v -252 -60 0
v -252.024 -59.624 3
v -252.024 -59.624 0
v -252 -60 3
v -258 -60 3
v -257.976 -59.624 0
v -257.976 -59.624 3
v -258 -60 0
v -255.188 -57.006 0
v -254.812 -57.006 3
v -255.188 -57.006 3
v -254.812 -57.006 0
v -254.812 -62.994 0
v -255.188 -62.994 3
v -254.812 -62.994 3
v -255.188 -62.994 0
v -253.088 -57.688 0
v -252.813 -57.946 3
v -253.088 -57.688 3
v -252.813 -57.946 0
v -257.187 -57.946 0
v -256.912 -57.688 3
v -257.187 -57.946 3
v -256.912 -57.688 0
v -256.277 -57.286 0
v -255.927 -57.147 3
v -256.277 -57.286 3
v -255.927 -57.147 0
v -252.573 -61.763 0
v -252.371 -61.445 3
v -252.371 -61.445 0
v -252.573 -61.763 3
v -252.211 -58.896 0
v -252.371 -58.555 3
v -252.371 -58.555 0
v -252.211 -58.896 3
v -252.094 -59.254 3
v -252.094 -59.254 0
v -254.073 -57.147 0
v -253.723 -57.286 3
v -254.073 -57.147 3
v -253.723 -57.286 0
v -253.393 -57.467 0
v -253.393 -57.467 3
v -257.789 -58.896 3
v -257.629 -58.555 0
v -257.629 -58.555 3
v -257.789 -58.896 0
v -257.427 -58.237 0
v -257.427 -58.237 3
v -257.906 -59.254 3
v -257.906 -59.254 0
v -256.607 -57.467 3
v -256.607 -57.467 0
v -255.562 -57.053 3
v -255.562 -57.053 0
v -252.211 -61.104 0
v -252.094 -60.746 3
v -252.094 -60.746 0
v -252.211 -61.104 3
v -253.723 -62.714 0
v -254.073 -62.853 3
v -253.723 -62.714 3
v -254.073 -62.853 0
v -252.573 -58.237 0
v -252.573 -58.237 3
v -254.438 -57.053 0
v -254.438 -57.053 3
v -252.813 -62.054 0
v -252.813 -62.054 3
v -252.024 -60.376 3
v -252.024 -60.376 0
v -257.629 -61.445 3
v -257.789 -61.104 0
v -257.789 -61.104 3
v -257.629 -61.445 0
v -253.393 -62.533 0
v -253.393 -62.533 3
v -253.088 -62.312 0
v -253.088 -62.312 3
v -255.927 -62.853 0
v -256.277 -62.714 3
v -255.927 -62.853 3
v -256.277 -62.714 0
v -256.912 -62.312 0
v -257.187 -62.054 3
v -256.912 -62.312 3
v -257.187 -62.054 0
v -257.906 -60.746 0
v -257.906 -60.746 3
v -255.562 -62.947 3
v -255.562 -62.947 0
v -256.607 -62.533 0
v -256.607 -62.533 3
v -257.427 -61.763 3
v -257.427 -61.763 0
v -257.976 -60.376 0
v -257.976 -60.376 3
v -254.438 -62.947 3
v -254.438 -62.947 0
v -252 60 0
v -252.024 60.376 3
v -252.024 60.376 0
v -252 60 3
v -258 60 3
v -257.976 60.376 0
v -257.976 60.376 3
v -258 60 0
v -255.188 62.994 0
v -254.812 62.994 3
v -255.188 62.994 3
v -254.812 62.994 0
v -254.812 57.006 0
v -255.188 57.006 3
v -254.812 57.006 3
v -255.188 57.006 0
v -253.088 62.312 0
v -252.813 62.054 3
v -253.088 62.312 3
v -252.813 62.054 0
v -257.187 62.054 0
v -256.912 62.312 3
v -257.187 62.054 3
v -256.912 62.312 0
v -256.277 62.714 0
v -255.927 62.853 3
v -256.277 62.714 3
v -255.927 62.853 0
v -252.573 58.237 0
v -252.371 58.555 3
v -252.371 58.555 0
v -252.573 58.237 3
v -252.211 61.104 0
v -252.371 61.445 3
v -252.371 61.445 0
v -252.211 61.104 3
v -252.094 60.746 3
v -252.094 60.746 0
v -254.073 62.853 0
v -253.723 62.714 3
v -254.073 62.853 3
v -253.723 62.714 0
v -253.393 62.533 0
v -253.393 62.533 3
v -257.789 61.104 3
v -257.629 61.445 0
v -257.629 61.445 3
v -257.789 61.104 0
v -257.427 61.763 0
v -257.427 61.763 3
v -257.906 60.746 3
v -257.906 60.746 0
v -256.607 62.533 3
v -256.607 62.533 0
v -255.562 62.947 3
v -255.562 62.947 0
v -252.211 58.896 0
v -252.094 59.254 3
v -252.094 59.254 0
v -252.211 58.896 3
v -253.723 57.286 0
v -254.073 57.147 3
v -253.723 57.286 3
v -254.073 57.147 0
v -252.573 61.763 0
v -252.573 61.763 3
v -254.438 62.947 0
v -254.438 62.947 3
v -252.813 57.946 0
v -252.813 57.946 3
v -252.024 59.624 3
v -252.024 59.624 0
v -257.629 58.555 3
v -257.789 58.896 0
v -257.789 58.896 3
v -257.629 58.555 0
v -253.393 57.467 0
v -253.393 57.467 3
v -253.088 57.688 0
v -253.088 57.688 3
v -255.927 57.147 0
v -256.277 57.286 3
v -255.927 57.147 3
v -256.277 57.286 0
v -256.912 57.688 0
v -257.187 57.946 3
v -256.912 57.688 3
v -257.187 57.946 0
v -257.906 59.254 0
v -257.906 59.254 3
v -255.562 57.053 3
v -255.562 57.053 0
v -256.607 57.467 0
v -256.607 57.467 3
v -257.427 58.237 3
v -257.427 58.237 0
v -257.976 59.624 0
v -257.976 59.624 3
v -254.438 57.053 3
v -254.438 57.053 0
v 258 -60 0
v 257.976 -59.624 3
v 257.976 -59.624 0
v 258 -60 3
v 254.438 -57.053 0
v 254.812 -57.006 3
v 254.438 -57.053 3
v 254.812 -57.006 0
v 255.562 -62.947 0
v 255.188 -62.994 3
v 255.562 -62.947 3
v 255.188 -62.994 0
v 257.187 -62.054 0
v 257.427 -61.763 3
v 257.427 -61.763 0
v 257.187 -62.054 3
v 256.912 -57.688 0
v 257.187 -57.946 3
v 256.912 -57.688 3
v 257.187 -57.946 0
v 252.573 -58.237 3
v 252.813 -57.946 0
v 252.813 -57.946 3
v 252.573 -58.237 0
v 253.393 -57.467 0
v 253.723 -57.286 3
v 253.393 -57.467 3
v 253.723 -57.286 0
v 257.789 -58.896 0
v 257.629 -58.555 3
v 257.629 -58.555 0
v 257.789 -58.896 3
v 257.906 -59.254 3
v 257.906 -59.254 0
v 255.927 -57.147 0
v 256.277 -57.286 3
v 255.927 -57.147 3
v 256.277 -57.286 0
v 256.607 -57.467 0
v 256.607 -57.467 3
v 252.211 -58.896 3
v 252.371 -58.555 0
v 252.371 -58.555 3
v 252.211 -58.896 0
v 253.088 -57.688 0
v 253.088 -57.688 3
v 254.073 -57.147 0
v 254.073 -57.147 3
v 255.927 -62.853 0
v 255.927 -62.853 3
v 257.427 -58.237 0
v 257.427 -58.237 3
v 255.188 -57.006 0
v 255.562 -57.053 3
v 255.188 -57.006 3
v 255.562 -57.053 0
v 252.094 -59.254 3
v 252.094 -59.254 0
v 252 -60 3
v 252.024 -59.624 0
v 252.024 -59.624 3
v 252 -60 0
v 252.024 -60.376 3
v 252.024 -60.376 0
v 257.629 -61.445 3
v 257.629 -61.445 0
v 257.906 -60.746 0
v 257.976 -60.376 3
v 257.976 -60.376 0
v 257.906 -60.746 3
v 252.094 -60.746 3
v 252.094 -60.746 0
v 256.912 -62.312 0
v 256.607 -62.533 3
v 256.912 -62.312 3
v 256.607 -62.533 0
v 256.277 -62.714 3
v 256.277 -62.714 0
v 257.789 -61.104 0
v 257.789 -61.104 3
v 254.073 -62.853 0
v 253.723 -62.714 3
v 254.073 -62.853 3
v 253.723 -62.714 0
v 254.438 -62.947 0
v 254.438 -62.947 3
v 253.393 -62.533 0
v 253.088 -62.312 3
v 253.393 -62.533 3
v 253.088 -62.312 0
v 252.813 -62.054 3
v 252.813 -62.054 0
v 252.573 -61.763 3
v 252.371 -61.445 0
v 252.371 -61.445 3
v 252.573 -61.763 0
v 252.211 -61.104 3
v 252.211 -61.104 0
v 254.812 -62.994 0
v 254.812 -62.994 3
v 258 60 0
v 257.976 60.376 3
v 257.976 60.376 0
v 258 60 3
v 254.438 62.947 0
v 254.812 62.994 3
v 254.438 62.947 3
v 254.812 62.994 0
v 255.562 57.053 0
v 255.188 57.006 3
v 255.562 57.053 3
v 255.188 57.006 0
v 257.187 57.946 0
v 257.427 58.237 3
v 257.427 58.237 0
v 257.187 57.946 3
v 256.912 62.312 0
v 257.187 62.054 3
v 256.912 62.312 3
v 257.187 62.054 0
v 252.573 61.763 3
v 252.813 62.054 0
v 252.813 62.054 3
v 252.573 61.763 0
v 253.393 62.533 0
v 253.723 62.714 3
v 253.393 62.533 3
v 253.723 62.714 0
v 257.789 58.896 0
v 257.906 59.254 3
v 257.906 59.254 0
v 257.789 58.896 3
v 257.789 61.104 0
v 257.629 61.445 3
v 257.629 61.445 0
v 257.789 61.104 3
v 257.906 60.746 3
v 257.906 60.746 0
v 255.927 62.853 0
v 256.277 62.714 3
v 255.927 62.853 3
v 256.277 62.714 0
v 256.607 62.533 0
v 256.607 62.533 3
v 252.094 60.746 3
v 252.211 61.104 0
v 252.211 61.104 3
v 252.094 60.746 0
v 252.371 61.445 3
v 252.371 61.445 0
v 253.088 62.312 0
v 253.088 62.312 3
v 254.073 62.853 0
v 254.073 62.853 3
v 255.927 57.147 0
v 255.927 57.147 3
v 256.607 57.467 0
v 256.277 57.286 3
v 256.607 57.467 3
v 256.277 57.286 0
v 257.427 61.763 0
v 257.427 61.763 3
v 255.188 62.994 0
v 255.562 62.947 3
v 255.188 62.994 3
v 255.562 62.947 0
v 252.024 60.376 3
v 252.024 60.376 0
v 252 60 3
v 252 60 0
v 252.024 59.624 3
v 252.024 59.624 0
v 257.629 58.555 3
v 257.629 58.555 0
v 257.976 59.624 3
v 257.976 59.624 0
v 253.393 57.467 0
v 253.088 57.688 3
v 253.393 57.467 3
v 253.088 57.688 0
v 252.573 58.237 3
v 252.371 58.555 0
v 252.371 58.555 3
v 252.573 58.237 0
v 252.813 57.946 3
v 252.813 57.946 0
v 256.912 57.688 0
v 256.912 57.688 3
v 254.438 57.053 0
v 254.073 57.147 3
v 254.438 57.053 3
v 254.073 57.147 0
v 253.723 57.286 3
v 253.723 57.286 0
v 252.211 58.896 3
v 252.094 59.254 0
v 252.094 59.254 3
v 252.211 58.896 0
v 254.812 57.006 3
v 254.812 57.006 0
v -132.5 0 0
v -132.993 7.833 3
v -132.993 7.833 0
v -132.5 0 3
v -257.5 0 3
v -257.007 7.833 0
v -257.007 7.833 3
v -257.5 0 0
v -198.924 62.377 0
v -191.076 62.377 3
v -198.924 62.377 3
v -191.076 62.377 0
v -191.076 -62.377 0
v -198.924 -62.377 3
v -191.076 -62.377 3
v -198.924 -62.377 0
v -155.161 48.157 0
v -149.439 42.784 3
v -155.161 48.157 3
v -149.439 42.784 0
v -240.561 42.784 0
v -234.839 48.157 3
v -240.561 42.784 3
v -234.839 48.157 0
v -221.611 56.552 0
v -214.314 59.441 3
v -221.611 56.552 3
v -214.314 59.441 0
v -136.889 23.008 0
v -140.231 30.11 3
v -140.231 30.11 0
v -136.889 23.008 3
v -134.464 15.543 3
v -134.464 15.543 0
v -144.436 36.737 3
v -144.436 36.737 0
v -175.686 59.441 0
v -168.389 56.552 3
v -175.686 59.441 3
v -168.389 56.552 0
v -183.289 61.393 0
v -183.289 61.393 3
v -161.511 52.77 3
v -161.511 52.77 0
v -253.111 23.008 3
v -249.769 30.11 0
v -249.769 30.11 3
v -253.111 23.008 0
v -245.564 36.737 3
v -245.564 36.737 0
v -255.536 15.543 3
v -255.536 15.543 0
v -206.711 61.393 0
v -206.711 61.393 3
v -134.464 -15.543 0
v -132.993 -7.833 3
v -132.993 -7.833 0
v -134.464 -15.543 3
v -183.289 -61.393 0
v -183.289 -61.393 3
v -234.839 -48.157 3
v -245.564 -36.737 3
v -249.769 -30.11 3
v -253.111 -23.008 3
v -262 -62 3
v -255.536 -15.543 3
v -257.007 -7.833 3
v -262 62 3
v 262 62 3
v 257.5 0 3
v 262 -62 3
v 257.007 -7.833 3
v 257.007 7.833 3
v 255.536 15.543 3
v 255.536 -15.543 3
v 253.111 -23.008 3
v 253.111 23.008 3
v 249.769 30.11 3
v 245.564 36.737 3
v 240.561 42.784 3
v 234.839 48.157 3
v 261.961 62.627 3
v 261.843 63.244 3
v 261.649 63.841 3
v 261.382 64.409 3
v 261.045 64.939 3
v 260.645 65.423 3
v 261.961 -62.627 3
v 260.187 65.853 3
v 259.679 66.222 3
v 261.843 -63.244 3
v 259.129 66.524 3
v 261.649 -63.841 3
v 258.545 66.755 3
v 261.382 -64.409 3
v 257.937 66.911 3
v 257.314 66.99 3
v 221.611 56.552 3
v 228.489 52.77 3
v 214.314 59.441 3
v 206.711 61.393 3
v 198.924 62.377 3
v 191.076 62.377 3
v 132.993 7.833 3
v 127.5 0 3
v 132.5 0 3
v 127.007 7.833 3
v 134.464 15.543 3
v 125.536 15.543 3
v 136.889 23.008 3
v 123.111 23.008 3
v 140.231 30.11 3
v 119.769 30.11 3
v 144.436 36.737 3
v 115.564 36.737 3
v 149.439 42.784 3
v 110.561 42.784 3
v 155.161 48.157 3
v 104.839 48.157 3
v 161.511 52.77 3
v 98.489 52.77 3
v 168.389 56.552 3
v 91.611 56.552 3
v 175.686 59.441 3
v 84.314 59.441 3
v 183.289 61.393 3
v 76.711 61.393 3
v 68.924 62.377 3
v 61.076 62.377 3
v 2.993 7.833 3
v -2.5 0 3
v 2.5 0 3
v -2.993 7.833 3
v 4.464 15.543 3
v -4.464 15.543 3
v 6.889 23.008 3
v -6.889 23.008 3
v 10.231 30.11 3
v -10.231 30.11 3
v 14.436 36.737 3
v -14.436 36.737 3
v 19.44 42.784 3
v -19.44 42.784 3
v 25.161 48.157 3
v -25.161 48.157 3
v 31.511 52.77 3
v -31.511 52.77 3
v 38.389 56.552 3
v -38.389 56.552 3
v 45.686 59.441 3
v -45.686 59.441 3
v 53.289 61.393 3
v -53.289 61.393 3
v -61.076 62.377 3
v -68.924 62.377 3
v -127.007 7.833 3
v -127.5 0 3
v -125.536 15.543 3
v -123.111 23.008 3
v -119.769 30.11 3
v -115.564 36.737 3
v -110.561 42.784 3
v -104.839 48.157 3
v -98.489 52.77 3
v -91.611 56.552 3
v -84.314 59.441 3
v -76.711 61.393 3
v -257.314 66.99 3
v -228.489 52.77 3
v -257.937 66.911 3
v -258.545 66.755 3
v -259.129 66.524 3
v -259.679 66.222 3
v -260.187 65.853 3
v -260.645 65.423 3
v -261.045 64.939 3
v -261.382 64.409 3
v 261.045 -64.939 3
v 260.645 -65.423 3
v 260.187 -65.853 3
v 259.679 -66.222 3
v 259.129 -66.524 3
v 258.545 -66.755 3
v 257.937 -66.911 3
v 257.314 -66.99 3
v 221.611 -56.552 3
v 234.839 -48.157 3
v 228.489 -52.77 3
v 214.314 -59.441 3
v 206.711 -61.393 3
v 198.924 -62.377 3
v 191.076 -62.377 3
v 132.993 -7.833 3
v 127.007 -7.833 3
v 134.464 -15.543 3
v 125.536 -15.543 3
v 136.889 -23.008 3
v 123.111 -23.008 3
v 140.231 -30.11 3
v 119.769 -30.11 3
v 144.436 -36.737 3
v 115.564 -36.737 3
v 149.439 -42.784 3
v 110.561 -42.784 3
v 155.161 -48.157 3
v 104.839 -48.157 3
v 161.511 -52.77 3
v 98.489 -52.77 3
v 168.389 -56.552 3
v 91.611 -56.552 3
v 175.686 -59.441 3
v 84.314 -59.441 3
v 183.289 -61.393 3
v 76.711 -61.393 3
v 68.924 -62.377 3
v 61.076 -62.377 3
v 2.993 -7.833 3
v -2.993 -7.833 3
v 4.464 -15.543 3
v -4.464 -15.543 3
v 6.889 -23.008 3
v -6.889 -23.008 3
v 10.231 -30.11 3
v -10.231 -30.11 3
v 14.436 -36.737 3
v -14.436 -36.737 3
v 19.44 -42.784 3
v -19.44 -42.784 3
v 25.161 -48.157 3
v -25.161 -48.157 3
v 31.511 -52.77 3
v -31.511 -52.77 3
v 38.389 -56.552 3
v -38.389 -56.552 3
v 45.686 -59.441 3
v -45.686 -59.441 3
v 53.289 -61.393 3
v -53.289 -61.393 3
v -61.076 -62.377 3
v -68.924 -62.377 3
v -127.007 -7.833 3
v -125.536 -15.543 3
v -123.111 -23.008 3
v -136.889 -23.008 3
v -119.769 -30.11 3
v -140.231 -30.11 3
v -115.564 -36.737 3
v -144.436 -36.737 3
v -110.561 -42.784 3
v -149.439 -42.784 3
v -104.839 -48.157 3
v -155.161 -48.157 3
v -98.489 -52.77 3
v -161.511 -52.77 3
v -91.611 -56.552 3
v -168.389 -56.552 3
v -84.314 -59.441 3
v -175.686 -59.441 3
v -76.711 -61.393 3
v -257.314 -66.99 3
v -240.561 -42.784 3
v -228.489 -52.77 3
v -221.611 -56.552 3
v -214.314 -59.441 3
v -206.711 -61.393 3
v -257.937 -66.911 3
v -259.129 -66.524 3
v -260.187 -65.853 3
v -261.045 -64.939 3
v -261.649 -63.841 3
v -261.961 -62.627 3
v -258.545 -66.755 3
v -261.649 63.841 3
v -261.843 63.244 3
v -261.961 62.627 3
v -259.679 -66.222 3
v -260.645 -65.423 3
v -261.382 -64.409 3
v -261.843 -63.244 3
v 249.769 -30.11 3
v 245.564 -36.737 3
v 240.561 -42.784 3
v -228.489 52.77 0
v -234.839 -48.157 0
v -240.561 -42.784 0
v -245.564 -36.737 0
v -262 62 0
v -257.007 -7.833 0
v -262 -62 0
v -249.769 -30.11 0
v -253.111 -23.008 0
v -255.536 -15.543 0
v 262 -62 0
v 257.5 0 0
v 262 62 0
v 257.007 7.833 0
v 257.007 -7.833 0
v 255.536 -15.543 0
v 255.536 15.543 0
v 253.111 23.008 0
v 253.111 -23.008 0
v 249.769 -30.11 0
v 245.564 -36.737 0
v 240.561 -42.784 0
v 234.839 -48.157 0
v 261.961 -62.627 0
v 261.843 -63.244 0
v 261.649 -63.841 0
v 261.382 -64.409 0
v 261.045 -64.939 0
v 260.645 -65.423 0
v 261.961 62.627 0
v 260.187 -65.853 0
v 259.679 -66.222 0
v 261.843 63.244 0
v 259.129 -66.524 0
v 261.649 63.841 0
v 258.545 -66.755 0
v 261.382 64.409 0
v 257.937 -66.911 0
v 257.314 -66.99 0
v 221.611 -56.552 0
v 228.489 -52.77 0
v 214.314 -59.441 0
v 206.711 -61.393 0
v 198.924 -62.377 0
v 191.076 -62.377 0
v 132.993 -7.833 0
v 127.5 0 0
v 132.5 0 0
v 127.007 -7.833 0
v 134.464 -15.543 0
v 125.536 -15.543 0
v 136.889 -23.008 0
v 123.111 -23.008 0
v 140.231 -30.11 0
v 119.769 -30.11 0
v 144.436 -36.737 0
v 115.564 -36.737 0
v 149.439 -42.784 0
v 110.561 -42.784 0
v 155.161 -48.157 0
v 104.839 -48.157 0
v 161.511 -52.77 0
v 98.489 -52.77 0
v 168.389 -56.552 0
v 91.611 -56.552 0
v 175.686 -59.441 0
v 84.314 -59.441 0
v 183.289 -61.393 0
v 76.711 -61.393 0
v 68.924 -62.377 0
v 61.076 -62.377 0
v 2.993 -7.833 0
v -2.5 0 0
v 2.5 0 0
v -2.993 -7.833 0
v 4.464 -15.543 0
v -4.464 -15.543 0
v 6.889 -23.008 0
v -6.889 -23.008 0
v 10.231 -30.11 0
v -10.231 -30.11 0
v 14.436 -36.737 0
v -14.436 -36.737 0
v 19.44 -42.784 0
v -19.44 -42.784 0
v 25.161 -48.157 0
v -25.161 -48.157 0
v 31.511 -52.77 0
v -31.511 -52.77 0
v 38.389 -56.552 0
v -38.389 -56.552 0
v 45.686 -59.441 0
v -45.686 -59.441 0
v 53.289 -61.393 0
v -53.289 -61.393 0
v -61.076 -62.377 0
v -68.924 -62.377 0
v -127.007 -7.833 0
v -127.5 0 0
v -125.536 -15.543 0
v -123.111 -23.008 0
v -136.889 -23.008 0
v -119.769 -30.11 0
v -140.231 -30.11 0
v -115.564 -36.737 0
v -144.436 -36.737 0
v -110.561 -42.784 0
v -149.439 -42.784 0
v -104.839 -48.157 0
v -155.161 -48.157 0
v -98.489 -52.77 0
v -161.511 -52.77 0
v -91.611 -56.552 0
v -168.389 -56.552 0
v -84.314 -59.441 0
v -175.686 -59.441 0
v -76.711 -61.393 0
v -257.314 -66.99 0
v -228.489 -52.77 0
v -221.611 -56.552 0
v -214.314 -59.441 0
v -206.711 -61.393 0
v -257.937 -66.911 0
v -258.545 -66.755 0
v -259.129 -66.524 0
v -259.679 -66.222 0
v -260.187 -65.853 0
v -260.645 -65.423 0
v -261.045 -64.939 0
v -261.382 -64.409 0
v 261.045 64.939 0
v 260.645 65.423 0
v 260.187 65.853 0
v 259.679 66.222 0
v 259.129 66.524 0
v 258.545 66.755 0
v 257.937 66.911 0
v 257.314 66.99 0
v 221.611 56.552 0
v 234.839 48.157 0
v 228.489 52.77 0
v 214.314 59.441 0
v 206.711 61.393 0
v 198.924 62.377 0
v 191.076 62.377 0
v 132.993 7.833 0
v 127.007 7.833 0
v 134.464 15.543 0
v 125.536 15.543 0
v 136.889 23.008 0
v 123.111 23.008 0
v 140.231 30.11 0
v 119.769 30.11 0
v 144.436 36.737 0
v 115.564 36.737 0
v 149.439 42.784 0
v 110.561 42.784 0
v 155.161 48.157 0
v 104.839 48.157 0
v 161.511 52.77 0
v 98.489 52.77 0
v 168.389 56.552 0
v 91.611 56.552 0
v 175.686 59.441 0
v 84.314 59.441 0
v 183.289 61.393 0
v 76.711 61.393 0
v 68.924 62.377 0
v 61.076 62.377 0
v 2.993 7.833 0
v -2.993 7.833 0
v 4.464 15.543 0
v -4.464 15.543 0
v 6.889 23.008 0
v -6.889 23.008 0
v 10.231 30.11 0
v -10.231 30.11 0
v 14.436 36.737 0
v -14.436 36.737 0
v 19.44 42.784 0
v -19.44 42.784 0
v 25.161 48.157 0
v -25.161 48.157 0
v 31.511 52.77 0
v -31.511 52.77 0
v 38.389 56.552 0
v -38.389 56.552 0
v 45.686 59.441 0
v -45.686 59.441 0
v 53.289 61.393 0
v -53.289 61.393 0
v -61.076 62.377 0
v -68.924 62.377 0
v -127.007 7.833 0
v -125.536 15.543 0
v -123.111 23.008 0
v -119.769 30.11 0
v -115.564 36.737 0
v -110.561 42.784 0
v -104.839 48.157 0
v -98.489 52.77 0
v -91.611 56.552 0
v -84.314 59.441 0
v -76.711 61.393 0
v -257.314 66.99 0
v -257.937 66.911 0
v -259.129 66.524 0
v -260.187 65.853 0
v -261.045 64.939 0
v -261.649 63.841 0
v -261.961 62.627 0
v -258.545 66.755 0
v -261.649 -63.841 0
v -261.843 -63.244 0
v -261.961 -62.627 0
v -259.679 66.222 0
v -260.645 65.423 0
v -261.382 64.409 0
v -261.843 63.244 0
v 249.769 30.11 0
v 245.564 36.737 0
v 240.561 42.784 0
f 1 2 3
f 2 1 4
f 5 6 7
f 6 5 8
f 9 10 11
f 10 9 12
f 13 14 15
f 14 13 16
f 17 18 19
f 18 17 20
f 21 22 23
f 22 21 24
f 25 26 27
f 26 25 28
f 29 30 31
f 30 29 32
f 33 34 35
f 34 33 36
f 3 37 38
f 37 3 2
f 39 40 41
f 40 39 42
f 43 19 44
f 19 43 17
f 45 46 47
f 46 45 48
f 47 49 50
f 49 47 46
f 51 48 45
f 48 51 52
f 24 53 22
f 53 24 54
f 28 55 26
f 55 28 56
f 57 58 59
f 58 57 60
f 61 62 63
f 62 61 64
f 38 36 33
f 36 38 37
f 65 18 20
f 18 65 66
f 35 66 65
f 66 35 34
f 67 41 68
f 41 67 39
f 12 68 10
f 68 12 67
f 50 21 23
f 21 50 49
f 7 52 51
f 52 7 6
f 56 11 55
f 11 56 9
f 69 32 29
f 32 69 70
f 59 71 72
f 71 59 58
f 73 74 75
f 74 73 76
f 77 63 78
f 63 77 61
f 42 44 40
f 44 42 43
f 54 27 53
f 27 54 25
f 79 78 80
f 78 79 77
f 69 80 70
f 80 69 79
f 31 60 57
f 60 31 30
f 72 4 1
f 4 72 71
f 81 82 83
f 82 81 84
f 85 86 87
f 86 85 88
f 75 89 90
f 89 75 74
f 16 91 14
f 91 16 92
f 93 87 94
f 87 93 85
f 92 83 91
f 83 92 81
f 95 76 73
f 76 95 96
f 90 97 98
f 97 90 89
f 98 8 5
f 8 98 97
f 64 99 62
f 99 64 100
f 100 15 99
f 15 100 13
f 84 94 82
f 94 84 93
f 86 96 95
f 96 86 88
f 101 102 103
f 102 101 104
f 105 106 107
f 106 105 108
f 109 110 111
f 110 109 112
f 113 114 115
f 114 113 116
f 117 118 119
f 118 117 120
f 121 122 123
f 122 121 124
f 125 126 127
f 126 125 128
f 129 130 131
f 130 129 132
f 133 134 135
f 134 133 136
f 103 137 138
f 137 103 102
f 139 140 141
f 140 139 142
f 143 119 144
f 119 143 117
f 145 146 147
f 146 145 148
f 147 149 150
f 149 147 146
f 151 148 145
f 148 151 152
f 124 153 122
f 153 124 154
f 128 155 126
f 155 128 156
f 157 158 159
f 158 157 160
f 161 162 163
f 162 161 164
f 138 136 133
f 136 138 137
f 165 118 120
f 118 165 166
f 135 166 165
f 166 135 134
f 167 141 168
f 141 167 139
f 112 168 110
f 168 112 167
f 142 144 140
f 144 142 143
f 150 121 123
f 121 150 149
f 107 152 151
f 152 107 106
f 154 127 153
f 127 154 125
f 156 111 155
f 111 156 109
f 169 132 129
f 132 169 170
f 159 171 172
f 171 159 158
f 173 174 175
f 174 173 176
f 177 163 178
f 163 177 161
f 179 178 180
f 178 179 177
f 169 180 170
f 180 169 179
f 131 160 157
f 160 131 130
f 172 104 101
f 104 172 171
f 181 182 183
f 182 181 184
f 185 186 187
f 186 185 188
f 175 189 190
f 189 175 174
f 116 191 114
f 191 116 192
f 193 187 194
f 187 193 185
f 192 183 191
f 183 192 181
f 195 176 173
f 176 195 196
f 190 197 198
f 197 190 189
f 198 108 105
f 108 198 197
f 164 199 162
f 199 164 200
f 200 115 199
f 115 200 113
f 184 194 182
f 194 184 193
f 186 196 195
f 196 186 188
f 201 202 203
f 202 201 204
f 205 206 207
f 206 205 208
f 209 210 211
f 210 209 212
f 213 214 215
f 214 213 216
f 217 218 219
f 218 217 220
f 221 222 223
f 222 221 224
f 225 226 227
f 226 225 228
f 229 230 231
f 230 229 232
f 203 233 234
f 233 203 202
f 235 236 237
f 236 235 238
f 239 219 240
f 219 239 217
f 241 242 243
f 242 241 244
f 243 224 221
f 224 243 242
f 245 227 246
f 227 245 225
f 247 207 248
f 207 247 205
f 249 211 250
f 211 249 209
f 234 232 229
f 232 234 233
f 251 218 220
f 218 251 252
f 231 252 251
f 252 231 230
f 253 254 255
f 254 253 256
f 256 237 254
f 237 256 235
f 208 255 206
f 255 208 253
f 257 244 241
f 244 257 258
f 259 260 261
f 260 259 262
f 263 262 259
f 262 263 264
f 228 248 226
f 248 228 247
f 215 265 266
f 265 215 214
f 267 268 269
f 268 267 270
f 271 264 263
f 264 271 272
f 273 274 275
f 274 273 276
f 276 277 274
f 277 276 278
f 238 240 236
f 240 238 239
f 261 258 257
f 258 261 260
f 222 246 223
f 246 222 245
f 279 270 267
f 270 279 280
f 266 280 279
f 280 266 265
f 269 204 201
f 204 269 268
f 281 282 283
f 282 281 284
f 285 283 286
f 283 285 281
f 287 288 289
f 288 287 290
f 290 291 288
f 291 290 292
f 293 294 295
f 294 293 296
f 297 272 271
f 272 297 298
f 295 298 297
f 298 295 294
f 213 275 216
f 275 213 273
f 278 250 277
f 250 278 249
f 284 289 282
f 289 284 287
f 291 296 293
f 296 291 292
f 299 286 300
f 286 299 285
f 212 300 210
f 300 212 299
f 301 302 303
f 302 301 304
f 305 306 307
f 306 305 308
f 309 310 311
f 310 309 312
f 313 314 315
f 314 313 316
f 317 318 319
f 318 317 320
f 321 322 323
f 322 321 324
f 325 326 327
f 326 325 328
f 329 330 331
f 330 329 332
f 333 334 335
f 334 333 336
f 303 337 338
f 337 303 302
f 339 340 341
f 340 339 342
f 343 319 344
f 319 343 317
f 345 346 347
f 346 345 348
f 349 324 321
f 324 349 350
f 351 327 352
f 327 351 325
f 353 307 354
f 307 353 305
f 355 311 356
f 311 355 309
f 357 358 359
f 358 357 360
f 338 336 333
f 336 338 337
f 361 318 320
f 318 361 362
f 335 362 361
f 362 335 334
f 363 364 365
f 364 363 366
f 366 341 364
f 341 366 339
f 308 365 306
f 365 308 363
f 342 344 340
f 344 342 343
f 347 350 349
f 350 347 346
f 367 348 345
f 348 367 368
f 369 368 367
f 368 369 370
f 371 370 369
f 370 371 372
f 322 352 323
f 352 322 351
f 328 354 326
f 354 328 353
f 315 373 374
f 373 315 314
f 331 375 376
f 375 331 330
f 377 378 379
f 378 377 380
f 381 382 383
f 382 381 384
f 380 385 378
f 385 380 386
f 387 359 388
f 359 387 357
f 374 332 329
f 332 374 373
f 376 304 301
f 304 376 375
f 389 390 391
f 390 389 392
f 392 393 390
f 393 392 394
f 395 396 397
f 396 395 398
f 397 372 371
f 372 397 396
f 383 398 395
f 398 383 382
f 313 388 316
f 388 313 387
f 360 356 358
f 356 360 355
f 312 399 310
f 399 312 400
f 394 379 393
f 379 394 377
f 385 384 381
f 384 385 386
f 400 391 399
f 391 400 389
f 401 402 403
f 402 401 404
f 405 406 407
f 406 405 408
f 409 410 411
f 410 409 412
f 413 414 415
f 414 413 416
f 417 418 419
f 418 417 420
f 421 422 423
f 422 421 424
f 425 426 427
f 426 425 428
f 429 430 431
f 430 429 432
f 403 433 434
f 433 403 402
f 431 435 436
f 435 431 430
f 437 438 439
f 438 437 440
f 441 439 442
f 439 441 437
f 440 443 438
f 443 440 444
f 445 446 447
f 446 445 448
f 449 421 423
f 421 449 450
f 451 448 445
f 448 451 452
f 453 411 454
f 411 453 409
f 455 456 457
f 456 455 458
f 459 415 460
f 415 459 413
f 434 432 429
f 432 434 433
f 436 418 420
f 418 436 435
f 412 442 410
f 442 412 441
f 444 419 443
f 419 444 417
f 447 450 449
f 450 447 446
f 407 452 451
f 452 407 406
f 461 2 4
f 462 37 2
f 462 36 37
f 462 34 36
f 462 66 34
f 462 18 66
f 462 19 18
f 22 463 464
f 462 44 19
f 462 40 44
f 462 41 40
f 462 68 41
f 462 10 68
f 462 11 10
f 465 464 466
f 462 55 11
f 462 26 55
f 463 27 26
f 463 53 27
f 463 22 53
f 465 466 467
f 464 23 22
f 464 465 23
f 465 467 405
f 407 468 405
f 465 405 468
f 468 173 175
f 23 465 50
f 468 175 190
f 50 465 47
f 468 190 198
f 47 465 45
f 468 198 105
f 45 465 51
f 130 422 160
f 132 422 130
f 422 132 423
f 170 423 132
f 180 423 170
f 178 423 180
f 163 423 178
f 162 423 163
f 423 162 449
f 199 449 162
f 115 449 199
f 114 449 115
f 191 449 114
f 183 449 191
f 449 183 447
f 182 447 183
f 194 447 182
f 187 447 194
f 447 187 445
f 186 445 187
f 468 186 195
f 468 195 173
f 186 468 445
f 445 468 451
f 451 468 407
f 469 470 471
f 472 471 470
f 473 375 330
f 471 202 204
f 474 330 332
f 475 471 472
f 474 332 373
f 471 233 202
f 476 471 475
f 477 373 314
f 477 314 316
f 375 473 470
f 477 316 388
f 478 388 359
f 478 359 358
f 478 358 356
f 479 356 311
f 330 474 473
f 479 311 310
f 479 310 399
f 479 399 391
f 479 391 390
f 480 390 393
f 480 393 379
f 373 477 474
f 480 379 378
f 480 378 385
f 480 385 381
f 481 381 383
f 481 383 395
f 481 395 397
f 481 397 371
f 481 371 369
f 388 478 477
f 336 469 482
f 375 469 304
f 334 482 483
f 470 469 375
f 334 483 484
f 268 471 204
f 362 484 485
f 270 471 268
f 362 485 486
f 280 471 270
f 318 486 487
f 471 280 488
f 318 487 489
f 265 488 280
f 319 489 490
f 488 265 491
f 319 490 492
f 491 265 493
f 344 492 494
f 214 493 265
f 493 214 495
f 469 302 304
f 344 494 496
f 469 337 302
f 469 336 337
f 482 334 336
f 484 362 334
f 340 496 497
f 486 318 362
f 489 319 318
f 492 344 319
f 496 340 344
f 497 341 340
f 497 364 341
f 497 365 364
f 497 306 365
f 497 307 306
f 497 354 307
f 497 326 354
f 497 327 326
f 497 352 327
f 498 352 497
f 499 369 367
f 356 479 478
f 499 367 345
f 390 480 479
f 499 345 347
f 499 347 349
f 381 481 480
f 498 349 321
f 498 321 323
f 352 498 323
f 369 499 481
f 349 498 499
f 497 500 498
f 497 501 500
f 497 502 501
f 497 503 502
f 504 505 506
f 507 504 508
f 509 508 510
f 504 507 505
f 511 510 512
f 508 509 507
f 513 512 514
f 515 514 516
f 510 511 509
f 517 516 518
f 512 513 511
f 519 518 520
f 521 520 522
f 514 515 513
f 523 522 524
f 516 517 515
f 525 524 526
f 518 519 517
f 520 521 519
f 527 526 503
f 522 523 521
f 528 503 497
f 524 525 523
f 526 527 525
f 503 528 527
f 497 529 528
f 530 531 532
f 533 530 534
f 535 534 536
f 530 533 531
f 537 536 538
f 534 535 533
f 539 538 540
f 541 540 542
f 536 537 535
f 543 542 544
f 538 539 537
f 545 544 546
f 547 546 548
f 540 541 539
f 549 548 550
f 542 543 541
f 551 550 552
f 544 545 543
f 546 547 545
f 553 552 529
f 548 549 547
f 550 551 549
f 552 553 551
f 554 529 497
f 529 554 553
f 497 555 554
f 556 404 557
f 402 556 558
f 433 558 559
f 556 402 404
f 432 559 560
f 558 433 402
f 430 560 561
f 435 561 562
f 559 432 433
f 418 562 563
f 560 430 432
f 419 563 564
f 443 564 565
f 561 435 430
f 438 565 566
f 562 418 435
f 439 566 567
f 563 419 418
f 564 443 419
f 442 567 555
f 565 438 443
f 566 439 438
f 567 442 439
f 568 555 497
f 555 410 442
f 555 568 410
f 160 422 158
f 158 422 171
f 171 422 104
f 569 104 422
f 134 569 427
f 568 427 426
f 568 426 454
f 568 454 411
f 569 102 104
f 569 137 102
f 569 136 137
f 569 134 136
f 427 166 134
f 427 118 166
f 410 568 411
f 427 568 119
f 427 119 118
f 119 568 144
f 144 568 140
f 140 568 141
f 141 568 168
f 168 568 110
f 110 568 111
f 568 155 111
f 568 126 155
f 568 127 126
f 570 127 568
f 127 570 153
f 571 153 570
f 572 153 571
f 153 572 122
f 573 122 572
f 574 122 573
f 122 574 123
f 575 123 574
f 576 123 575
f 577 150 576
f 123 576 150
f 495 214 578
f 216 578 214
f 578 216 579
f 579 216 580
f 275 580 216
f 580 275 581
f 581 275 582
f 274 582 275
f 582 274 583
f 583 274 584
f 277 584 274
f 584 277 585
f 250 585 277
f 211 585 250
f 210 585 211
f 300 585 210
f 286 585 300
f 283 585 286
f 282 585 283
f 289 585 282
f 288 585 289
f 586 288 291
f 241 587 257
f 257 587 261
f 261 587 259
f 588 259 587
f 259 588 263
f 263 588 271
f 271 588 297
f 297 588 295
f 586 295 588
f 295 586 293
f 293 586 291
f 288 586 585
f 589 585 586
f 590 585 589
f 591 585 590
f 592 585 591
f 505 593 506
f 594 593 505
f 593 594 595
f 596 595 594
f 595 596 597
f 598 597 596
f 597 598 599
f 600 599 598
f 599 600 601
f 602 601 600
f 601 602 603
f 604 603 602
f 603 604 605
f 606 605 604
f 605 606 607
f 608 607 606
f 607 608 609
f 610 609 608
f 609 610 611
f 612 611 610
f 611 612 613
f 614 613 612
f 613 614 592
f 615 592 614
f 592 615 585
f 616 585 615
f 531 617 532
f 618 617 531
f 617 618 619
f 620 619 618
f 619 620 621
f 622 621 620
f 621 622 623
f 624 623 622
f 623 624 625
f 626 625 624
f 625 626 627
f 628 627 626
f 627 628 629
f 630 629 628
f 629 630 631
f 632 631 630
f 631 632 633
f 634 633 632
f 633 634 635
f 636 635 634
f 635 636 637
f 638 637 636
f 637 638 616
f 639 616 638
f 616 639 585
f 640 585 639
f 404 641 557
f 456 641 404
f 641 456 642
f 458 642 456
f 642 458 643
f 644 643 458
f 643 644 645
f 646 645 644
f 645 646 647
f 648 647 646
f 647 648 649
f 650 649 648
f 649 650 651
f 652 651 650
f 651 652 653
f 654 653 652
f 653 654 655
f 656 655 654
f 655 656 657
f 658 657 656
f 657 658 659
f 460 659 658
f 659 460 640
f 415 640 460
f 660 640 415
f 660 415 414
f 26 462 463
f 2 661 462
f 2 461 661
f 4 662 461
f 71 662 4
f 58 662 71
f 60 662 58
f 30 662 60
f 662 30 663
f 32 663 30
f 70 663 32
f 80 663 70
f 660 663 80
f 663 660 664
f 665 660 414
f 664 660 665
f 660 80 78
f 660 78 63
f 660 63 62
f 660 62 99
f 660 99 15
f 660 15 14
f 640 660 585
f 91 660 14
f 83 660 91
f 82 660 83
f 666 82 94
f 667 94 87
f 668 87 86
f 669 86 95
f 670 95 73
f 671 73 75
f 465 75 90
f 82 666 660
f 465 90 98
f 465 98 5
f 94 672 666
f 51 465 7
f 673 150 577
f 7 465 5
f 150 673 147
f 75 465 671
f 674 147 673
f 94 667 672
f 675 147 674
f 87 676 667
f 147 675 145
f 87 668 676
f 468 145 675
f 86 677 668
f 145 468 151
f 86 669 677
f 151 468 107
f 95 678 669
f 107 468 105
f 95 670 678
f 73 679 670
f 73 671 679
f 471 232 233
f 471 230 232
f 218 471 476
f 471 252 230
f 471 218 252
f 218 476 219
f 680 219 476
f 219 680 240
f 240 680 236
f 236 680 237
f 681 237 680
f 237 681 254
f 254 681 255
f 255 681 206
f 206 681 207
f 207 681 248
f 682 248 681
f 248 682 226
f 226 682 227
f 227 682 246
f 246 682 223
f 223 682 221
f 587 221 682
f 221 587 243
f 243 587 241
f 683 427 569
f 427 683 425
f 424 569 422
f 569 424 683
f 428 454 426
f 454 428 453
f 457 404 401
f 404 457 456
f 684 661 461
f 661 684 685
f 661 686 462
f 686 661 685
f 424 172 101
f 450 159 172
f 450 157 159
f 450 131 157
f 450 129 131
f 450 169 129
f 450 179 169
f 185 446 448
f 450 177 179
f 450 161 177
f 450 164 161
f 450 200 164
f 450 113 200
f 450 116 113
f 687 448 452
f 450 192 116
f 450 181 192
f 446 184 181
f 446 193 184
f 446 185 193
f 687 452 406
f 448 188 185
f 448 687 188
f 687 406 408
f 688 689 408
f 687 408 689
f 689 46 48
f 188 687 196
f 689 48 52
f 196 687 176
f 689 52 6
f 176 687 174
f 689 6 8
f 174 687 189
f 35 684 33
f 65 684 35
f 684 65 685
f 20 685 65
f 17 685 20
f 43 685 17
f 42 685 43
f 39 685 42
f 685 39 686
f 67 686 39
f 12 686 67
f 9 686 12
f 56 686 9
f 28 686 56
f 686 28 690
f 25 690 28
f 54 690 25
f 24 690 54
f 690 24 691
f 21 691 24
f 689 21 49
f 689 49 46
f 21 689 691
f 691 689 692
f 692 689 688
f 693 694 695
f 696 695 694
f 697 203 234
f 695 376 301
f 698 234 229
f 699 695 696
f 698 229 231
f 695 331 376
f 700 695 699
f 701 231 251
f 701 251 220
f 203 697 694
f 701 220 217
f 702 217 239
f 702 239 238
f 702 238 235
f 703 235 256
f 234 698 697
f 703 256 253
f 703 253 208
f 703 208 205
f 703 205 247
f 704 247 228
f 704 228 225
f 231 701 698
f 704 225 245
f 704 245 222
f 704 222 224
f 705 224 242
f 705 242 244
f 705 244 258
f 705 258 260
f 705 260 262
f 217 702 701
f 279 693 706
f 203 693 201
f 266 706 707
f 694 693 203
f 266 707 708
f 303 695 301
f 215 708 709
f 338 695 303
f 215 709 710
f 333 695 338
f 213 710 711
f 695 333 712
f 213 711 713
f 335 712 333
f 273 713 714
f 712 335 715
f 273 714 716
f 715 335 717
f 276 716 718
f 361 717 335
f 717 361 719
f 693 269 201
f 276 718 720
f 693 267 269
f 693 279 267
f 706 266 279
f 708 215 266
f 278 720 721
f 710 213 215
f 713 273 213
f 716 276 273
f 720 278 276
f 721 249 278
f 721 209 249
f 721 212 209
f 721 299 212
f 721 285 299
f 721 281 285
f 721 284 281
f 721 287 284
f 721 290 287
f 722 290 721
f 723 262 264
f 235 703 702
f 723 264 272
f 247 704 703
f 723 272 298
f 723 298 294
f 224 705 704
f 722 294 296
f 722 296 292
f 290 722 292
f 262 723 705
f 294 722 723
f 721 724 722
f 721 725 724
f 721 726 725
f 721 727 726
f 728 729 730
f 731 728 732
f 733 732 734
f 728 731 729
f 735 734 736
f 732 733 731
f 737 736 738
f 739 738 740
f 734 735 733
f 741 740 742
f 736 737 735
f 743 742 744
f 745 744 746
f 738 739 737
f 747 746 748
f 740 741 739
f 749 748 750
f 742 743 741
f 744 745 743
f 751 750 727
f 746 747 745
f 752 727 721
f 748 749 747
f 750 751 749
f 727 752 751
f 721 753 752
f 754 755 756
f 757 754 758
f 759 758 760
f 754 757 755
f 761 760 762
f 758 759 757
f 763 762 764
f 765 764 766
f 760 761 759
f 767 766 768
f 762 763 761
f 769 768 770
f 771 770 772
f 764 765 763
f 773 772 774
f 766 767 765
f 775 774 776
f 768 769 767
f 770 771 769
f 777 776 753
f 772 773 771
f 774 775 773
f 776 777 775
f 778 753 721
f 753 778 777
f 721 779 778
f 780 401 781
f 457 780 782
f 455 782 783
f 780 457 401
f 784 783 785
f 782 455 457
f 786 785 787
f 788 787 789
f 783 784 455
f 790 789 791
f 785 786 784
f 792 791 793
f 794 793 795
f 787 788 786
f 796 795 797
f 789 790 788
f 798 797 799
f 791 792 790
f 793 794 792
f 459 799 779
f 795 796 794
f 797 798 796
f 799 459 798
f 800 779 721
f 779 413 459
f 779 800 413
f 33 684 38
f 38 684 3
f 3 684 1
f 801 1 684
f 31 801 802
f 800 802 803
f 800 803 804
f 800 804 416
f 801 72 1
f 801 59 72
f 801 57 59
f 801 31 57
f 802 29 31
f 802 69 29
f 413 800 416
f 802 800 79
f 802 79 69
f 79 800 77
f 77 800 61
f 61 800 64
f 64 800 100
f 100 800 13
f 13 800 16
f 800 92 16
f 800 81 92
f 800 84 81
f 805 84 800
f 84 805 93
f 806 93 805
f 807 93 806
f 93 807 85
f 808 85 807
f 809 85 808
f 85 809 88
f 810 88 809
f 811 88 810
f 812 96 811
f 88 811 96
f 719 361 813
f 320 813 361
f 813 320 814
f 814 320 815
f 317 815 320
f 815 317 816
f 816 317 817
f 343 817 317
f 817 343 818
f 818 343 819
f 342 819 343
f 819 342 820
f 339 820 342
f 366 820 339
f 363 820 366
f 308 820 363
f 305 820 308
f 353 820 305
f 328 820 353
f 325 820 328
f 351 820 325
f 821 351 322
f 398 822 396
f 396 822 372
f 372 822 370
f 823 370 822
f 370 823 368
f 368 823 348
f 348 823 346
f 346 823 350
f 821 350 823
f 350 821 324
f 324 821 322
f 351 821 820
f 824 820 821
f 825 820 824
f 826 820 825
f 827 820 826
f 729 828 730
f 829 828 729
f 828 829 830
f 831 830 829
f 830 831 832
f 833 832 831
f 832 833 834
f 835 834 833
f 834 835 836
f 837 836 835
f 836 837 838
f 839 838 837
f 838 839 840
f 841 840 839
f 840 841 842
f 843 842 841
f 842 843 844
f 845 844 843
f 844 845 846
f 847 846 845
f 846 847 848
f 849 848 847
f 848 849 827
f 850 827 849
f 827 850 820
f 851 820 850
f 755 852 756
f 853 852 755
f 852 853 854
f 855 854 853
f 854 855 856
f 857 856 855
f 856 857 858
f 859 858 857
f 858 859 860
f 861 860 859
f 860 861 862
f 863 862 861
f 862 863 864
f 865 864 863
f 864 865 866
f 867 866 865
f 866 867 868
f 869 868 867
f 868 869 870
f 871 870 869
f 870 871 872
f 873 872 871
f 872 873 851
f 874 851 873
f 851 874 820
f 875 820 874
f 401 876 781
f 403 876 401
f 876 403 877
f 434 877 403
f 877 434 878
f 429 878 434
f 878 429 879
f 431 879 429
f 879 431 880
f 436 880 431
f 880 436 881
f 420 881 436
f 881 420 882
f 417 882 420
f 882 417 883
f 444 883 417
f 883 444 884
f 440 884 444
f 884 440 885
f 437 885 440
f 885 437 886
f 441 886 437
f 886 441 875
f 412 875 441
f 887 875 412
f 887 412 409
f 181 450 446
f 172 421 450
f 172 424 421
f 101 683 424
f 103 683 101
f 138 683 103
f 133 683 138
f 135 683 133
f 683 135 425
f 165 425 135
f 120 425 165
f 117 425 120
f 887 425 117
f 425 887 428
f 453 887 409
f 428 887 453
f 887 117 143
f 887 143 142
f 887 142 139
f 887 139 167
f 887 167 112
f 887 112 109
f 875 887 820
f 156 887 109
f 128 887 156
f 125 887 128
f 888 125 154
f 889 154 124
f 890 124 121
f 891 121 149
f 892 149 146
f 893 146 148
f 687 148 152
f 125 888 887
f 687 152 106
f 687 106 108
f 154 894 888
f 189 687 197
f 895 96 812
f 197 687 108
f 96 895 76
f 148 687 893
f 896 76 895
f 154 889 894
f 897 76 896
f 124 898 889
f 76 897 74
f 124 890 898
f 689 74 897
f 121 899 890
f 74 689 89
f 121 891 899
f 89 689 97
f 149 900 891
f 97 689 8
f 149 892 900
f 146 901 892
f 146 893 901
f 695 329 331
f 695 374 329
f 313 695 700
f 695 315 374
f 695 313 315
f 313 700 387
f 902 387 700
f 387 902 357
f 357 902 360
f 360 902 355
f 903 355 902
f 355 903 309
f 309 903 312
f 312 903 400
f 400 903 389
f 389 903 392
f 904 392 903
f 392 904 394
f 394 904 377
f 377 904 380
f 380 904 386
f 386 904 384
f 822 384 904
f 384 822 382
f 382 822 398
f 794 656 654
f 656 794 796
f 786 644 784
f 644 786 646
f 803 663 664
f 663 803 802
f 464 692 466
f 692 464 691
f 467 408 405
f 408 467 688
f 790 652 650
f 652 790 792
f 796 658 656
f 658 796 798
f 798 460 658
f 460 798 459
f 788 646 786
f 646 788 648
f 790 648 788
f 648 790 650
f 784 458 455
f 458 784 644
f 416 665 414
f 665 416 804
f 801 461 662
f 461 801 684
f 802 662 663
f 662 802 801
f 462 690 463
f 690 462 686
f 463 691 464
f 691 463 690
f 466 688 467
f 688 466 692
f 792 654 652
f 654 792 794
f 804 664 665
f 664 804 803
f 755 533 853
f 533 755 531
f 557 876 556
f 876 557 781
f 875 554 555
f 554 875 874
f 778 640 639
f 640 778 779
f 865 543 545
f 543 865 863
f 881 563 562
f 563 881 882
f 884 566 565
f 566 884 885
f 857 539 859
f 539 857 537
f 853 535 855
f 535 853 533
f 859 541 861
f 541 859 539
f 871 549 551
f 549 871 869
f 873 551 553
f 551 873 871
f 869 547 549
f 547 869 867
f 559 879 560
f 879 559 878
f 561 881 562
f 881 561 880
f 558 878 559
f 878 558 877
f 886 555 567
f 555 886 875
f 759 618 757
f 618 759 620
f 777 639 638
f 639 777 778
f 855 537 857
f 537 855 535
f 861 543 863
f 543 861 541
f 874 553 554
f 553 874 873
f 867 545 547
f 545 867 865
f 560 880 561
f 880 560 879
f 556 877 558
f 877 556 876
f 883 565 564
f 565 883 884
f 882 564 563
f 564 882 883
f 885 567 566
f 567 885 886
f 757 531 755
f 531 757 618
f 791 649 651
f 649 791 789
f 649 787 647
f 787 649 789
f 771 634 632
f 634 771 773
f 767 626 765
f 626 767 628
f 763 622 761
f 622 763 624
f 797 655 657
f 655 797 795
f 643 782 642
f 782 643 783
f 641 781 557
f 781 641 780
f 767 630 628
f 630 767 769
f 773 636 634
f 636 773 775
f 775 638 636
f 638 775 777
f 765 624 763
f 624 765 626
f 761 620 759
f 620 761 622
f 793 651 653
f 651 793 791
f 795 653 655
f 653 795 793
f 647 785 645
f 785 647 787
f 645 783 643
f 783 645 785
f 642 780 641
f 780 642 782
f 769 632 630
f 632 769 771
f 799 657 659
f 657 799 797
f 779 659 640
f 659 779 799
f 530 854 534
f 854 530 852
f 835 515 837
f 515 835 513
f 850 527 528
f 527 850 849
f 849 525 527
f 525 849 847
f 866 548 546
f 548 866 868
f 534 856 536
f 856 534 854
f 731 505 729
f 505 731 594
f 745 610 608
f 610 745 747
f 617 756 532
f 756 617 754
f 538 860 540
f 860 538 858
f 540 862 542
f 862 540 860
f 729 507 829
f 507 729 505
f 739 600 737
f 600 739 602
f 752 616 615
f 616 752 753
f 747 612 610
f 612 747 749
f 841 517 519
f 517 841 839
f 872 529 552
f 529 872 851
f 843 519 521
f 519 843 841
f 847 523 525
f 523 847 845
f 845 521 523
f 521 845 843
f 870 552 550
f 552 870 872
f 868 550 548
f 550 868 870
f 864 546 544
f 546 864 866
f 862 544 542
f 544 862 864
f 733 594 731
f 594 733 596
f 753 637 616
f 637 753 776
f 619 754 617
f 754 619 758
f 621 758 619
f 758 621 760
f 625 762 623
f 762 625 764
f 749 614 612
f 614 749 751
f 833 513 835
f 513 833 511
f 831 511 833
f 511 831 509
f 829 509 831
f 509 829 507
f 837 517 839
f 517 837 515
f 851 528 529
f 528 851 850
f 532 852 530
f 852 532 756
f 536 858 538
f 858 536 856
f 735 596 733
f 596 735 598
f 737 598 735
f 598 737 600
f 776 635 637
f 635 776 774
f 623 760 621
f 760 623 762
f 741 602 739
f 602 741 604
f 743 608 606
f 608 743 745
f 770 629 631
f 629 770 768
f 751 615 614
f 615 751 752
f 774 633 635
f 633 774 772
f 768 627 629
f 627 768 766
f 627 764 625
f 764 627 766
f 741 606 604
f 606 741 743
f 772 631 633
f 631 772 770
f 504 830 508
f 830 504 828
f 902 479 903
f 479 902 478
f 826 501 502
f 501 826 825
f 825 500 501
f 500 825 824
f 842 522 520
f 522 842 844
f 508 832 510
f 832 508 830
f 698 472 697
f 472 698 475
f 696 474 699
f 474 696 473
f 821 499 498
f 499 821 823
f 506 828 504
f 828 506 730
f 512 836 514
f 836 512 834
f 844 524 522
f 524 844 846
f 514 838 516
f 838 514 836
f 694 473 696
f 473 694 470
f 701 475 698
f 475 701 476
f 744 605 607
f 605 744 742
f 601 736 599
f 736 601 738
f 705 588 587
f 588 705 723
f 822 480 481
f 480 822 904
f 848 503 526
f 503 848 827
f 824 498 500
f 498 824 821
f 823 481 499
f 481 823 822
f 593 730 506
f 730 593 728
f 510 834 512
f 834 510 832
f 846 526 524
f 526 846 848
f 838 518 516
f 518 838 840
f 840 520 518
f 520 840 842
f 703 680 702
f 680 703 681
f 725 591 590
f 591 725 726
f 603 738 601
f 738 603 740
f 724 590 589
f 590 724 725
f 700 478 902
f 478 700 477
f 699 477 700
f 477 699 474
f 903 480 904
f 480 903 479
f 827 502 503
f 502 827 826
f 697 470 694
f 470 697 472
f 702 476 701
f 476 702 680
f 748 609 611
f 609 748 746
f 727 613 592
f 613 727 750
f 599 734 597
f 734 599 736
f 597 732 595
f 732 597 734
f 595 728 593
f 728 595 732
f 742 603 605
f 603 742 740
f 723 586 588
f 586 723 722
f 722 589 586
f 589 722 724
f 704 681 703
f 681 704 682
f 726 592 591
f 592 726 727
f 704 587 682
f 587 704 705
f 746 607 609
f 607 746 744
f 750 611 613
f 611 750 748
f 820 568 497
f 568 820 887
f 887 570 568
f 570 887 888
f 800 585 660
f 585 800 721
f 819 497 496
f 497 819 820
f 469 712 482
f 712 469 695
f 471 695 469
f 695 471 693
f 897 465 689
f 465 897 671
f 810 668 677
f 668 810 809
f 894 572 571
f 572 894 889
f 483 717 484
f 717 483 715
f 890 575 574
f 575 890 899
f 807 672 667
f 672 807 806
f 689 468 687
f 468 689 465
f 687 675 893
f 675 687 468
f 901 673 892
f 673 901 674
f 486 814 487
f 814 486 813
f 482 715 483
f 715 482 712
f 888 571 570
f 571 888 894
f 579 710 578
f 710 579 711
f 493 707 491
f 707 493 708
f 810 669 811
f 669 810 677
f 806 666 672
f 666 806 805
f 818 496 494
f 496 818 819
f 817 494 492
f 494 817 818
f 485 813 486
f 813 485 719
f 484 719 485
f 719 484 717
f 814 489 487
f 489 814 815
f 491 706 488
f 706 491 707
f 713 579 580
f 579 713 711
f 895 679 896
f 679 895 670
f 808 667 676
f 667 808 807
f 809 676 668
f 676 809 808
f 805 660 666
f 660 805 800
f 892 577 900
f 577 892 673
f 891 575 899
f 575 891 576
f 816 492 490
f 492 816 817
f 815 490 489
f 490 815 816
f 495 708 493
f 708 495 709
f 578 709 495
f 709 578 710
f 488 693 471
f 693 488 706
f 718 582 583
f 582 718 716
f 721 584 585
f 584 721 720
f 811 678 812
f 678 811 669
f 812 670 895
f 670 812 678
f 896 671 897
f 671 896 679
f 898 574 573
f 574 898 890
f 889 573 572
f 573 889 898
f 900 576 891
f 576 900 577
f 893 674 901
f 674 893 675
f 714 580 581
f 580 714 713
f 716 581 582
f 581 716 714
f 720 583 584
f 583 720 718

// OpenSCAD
$fn = 50;


difference() {
	union() {
		hull() {
			translate(v = [-257.0000000000, 62.0000000000, 0]) {
				cylinder(h = 3, r = 5);
			}
			translate(v = [257.0000000000, 62.0000000000, 0]) {
				cylinder(h = 3, r = 5);
			}
			translate(v = [-257.0000000000, -62.0000000000, 0]) {
				cylinder(h = 3, r = 5);
			}
			translate(v = [257.0000000000, -62.0000000000, 0]) {
				cylinder(h = 3, r = 5);
			}
		}
	}
	union() {
		#translate(v = [-255.0000000000, -60.0000000000, -100.0000000000]) {
			cylinder(h = 200, r = 3.0000000000);
		}
		#translate(v = [-255.0000000000, 60.0000000000, -100.0000000000]) {
			cylinder(h = 200, r = 3.0000000000);
		}
		#translate(v = [255.0000000000, -60.0000000000, -100.0000000000]) {
			cylinder(h = 200, r = 3.0000000000);
		}
		#translate(v = [255.0000000000, 60.0000000000, -100.0000000000]) {
			cylinder(h = 200, r = 3.0000000000);
		}
		#translate(v = [-195.0000000000, 0, 0]) {
			cylinder(h = 3, r = 62.5000000000);
		}
		#translate(v = [-65.0000000000, 0, 0]) {
			cylinder(h = 3, r = 62.5000000000);
		}
		#translate(v = [65.0000000000, 0, 0]) {
			cylinder(h = 3, r = 62.5000000000);
		}
		#translate(v = [195.0000000000, 0, 0]) {
			cylinder(h = 3, r = 62.5000000000);
		}
	}
}
